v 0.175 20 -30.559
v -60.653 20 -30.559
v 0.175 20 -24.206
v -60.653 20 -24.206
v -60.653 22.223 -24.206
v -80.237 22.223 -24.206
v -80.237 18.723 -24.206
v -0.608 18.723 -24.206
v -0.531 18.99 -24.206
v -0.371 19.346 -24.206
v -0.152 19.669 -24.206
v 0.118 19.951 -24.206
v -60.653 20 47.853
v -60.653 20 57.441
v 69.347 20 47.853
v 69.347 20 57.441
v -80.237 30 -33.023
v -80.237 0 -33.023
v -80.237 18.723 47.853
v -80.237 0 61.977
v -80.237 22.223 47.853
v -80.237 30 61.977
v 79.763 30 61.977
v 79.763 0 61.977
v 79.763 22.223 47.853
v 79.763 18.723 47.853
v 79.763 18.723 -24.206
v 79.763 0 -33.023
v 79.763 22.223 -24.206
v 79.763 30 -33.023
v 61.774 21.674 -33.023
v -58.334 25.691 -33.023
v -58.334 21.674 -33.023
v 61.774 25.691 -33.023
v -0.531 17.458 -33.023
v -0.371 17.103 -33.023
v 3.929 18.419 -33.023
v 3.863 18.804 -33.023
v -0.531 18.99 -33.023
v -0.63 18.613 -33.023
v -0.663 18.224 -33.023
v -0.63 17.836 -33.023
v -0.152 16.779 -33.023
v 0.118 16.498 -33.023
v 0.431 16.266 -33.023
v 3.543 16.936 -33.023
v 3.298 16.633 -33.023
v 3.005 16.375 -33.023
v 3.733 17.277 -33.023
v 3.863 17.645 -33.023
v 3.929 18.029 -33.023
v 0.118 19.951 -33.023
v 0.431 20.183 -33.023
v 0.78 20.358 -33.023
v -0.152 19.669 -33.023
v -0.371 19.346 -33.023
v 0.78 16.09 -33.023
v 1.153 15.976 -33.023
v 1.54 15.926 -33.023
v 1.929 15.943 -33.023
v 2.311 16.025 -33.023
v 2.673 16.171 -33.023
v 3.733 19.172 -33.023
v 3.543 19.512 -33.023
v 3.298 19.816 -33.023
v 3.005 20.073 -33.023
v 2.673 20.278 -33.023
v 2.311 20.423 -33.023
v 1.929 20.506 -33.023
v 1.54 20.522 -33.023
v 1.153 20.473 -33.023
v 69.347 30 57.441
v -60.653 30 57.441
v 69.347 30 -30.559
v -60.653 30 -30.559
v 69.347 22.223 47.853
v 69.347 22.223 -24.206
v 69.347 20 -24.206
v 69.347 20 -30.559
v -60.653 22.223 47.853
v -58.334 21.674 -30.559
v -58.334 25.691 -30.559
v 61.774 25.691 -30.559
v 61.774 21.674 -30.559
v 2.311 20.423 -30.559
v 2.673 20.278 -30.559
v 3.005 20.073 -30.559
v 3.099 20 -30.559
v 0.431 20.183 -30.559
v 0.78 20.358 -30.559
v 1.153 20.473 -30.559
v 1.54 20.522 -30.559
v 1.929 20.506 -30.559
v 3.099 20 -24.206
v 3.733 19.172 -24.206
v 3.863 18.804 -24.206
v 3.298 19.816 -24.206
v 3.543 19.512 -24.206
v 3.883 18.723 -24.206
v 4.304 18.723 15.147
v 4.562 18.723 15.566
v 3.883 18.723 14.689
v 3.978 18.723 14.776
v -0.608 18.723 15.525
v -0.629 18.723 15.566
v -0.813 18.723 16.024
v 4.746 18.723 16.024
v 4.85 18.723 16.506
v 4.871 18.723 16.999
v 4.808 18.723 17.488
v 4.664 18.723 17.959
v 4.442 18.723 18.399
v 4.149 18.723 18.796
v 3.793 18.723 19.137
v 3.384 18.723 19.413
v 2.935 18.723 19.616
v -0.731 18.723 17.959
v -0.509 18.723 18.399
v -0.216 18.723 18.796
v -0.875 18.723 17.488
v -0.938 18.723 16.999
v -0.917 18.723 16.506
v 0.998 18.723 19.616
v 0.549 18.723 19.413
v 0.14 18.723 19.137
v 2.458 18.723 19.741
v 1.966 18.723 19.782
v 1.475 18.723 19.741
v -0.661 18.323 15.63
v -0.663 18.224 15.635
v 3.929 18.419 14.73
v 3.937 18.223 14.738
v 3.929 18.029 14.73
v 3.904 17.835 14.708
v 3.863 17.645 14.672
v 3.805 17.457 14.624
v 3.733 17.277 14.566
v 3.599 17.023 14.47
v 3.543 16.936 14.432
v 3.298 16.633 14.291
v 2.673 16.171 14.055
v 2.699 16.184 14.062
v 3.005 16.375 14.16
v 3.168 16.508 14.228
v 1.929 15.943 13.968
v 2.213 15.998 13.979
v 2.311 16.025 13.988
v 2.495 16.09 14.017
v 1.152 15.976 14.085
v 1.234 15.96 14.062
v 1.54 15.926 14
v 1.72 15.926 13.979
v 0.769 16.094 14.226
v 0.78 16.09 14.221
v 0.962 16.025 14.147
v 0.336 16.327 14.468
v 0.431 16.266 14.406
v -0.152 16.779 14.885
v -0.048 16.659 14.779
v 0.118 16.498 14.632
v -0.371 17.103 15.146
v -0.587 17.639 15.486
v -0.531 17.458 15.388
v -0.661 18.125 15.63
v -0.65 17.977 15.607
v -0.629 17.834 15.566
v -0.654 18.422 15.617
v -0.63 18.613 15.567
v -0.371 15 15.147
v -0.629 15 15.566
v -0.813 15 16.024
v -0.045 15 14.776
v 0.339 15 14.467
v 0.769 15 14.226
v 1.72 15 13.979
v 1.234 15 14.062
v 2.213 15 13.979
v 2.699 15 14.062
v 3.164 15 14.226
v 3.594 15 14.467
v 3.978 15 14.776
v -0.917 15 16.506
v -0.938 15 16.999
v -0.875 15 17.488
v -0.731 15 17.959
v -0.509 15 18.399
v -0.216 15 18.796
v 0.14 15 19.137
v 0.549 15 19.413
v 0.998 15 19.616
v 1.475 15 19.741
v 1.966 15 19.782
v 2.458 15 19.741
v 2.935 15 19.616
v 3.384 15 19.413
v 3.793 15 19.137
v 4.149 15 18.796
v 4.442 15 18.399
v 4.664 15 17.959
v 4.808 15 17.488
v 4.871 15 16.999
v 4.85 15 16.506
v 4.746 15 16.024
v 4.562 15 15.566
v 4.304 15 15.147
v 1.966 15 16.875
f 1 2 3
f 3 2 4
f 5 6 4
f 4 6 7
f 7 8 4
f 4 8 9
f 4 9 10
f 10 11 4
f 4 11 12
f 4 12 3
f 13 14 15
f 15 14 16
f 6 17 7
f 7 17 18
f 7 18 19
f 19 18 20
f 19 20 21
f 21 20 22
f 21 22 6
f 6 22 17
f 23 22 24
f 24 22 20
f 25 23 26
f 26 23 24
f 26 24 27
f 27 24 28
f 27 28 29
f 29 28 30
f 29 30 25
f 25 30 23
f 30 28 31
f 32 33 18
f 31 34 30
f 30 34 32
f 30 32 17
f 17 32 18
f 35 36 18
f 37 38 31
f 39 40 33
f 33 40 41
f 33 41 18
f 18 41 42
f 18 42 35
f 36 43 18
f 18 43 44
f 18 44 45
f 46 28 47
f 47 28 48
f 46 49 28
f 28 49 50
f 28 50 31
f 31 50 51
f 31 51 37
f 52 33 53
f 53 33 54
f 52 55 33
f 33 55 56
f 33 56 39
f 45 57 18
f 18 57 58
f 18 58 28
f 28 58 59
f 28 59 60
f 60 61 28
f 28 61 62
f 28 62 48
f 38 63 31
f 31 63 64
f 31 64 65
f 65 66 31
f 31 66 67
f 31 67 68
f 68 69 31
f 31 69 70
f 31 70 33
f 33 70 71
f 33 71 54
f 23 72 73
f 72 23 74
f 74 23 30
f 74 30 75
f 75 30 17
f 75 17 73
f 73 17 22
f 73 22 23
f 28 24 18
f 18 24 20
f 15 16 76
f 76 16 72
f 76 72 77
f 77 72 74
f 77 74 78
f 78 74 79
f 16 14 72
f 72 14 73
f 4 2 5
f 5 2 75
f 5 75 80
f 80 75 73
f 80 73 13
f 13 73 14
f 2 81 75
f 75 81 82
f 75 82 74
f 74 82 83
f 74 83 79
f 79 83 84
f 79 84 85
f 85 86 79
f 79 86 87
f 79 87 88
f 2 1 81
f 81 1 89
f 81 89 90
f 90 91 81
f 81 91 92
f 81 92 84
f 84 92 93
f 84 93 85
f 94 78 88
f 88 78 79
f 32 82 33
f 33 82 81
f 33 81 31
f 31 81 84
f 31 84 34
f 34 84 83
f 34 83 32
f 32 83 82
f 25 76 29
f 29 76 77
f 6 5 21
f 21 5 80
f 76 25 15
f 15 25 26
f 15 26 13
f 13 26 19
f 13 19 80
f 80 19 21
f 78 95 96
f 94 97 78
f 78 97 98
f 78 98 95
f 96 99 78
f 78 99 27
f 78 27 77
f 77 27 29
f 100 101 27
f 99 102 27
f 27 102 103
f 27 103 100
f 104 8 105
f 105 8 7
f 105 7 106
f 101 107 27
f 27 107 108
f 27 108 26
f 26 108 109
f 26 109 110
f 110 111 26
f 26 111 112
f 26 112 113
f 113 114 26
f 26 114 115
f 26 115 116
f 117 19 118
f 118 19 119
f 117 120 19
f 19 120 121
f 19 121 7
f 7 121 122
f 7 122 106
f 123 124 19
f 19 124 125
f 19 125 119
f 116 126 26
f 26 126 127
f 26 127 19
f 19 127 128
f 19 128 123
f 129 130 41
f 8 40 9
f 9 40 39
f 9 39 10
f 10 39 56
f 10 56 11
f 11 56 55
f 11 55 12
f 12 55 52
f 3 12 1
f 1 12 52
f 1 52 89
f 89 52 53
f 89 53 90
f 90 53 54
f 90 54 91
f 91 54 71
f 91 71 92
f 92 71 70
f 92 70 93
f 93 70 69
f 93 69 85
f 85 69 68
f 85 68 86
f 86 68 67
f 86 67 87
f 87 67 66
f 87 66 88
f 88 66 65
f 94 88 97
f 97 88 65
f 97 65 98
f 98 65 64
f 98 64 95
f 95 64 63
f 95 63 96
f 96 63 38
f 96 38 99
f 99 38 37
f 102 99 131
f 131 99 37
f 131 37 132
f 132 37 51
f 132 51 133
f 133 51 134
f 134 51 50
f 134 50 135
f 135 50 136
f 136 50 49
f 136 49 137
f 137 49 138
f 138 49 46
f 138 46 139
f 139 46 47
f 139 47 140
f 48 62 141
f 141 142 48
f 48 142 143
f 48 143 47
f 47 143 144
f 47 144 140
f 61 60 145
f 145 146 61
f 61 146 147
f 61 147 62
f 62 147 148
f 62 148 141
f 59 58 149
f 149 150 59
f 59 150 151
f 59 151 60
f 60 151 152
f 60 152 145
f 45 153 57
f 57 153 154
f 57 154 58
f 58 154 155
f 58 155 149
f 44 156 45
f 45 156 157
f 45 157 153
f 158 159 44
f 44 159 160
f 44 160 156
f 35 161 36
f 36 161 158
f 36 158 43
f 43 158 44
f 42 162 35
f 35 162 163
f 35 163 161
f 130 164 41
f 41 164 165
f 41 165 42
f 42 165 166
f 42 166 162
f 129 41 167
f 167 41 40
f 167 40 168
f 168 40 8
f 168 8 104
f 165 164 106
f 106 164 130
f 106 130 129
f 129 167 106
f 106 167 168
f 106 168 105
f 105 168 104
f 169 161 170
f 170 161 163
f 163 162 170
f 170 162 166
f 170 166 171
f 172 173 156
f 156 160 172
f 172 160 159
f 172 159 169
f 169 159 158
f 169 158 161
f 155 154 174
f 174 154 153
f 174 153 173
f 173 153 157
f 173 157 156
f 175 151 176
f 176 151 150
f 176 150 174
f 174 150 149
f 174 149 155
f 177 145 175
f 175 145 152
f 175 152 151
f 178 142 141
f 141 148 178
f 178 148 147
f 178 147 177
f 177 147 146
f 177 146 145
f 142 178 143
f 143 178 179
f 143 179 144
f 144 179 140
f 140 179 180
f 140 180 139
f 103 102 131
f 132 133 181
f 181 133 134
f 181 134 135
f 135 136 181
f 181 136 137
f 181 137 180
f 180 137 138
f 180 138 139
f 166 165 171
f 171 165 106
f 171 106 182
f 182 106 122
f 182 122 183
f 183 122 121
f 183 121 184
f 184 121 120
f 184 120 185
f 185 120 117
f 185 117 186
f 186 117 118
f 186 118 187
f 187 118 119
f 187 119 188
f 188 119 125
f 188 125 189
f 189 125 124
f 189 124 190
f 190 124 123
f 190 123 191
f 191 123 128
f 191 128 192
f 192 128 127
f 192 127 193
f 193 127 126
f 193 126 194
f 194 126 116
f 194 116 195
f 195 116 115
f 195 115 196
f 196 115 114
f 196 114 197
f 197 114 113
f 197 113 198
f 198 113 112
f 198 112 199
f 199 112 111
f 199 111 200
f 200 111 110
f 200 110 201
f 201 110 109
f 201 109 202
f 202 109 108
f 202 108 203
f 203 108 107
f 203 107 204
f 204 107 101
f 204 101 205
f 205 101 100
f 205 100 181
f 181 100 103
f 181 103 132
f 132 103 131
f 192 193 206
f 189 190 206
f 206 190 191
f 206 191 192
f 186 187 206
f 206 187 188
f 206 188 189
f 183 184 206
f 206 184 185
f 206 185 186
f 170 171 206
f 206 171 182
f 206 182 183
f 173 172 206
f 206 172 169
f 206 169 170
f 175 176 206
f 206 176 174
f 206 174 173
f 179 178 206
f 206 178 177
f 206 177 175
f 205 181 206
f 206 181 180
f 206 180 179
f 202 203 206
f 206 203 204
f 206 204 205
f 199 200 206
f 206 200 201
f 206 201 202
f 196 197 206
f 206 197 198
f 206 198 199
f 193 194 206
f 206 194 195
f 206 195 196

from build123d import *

# Parameters (mm, degrees)
SKETCH1_W               = 160
SKETCH1_H               = 95
BOSS_EXTRUDE1_DEPTH     = 30
SKETCH3_W               = 130
SKETCH3_H               = 88
CUT_EXTRUDE1_DEPTH      = 10
SKETCH4_W               = 120.10834505
SKETCH4_H               = 4.01773352
CUT_EXTRUDE2_DEPTH      = 5
CUT_EXTRUDE4_START      = 10
SKETCH6_W               = 72.05939184
SKETCH6_H               = 3.5
CUT_EXTRUDE4_DEPTH      = 1
CUT_EXTRUDE4_DEPTH_BACK = 171
SKETCH7_R               = 2.3
CUT_EXTRUDE5_DEPTH      = 50
SKETCH8_R               = 2.907178759
CUT_EXTRUDE6_DEPTH      = 5


with BuildPart() as part:
    # Sketch1 → Boss-Extrude1 (new body)
    with BuildSketch(Plane(origin=(0, 0, 0), x_dir=(1, 0, 0), z_dir=(0, 1, 0))):
        with Locations((-0.236733524, -14.477499078)):
            Rectangle(SKETCH1_W, SKETCH1_H)
    extrude(amount=BOSS_EXTRUDE1_DEPTH)

    # Sketch3 → Cut-Extrude1 (cut)
    with BuildSketch(Plane(origin=(0, 30, 0), x_dir=(1, 0, 0), z_dir=(0, 1, 0))):
        with Locations((4.347428577, -13.440922118)):
            Rectangle(SKETCH3_W, SKETCH3_H)
    extrude(amount=-CUT_EXTRUDE1_DEPTH, mode=Mode.SUBTRACT)

    # Sketch4 → Cut-Extrude2 (cut)
    with BuildSketch(Plane(origin=(0, 0, -33.022500922), x_dir=(-1, 0, 0), z_dir=(0, 0, -1))):
        with Locations((-1.719856556, 23.682368484)):
            Rectangle(SKETCH4_W, SKETCH4_H)
    extrude(amount=-CUT_EXTRUDE2_DEPTH, mode=Mode.SUBTRACT)

    # Sketch6 → Cut-Extrude4 (cut, two sides)
    with BuildSketch(Plane(origin=(79.763266476, 0, 0), x_dir=(0, 0, -1), z_dir=(1, 0, 0)).offset(CUT_EXTRUDE4_START)) as cut_extrude4_sk:
        with Locations((-11.823423429, 20.472568853)):
            Rectangle(SKETCH6_W, SKETCH6_H)
    extrude(amount=CUT_EXTRUDE4_DEPTH, mode=Mode.SUBTRACT)
    extrude(cut_extrude4_sk.sketch, amount=-CUT_EXTRUDE4_DEPTH_BACK, mode=Mode.SUBTRACT)

    # Sketch7 → Cut-Extrude5 (cut)
    with BuildSketch(Plane(origin=(-65.187547899, 5.789113432, -33.022500922), x_dir=(-1, 0, 0), z_dir=(0, 0, -1))):
        with Locations((-66.824710363, 12.43513753)):
            Circle(SKETCH7_R)
    extrude(amount=-CUT_EXTRUDE5_DEPTH, mode=Mode.SUBTRACT)

    # Sketch8 → Cut-Extrude6 (cut)
    with BuildSketch(Plane(origin=(0, 20, 0), x_dir=(1, 0, 0), z_dir=(0, 1, 0))):
        with Locations((1.966492652, -16.875229275)):
            Circle(SKETCH8_R)
    extrude(amount=-CUT_EXTRUDE6_DEPTH, mode=Mode.SUBTRACT)


solid = part.part
